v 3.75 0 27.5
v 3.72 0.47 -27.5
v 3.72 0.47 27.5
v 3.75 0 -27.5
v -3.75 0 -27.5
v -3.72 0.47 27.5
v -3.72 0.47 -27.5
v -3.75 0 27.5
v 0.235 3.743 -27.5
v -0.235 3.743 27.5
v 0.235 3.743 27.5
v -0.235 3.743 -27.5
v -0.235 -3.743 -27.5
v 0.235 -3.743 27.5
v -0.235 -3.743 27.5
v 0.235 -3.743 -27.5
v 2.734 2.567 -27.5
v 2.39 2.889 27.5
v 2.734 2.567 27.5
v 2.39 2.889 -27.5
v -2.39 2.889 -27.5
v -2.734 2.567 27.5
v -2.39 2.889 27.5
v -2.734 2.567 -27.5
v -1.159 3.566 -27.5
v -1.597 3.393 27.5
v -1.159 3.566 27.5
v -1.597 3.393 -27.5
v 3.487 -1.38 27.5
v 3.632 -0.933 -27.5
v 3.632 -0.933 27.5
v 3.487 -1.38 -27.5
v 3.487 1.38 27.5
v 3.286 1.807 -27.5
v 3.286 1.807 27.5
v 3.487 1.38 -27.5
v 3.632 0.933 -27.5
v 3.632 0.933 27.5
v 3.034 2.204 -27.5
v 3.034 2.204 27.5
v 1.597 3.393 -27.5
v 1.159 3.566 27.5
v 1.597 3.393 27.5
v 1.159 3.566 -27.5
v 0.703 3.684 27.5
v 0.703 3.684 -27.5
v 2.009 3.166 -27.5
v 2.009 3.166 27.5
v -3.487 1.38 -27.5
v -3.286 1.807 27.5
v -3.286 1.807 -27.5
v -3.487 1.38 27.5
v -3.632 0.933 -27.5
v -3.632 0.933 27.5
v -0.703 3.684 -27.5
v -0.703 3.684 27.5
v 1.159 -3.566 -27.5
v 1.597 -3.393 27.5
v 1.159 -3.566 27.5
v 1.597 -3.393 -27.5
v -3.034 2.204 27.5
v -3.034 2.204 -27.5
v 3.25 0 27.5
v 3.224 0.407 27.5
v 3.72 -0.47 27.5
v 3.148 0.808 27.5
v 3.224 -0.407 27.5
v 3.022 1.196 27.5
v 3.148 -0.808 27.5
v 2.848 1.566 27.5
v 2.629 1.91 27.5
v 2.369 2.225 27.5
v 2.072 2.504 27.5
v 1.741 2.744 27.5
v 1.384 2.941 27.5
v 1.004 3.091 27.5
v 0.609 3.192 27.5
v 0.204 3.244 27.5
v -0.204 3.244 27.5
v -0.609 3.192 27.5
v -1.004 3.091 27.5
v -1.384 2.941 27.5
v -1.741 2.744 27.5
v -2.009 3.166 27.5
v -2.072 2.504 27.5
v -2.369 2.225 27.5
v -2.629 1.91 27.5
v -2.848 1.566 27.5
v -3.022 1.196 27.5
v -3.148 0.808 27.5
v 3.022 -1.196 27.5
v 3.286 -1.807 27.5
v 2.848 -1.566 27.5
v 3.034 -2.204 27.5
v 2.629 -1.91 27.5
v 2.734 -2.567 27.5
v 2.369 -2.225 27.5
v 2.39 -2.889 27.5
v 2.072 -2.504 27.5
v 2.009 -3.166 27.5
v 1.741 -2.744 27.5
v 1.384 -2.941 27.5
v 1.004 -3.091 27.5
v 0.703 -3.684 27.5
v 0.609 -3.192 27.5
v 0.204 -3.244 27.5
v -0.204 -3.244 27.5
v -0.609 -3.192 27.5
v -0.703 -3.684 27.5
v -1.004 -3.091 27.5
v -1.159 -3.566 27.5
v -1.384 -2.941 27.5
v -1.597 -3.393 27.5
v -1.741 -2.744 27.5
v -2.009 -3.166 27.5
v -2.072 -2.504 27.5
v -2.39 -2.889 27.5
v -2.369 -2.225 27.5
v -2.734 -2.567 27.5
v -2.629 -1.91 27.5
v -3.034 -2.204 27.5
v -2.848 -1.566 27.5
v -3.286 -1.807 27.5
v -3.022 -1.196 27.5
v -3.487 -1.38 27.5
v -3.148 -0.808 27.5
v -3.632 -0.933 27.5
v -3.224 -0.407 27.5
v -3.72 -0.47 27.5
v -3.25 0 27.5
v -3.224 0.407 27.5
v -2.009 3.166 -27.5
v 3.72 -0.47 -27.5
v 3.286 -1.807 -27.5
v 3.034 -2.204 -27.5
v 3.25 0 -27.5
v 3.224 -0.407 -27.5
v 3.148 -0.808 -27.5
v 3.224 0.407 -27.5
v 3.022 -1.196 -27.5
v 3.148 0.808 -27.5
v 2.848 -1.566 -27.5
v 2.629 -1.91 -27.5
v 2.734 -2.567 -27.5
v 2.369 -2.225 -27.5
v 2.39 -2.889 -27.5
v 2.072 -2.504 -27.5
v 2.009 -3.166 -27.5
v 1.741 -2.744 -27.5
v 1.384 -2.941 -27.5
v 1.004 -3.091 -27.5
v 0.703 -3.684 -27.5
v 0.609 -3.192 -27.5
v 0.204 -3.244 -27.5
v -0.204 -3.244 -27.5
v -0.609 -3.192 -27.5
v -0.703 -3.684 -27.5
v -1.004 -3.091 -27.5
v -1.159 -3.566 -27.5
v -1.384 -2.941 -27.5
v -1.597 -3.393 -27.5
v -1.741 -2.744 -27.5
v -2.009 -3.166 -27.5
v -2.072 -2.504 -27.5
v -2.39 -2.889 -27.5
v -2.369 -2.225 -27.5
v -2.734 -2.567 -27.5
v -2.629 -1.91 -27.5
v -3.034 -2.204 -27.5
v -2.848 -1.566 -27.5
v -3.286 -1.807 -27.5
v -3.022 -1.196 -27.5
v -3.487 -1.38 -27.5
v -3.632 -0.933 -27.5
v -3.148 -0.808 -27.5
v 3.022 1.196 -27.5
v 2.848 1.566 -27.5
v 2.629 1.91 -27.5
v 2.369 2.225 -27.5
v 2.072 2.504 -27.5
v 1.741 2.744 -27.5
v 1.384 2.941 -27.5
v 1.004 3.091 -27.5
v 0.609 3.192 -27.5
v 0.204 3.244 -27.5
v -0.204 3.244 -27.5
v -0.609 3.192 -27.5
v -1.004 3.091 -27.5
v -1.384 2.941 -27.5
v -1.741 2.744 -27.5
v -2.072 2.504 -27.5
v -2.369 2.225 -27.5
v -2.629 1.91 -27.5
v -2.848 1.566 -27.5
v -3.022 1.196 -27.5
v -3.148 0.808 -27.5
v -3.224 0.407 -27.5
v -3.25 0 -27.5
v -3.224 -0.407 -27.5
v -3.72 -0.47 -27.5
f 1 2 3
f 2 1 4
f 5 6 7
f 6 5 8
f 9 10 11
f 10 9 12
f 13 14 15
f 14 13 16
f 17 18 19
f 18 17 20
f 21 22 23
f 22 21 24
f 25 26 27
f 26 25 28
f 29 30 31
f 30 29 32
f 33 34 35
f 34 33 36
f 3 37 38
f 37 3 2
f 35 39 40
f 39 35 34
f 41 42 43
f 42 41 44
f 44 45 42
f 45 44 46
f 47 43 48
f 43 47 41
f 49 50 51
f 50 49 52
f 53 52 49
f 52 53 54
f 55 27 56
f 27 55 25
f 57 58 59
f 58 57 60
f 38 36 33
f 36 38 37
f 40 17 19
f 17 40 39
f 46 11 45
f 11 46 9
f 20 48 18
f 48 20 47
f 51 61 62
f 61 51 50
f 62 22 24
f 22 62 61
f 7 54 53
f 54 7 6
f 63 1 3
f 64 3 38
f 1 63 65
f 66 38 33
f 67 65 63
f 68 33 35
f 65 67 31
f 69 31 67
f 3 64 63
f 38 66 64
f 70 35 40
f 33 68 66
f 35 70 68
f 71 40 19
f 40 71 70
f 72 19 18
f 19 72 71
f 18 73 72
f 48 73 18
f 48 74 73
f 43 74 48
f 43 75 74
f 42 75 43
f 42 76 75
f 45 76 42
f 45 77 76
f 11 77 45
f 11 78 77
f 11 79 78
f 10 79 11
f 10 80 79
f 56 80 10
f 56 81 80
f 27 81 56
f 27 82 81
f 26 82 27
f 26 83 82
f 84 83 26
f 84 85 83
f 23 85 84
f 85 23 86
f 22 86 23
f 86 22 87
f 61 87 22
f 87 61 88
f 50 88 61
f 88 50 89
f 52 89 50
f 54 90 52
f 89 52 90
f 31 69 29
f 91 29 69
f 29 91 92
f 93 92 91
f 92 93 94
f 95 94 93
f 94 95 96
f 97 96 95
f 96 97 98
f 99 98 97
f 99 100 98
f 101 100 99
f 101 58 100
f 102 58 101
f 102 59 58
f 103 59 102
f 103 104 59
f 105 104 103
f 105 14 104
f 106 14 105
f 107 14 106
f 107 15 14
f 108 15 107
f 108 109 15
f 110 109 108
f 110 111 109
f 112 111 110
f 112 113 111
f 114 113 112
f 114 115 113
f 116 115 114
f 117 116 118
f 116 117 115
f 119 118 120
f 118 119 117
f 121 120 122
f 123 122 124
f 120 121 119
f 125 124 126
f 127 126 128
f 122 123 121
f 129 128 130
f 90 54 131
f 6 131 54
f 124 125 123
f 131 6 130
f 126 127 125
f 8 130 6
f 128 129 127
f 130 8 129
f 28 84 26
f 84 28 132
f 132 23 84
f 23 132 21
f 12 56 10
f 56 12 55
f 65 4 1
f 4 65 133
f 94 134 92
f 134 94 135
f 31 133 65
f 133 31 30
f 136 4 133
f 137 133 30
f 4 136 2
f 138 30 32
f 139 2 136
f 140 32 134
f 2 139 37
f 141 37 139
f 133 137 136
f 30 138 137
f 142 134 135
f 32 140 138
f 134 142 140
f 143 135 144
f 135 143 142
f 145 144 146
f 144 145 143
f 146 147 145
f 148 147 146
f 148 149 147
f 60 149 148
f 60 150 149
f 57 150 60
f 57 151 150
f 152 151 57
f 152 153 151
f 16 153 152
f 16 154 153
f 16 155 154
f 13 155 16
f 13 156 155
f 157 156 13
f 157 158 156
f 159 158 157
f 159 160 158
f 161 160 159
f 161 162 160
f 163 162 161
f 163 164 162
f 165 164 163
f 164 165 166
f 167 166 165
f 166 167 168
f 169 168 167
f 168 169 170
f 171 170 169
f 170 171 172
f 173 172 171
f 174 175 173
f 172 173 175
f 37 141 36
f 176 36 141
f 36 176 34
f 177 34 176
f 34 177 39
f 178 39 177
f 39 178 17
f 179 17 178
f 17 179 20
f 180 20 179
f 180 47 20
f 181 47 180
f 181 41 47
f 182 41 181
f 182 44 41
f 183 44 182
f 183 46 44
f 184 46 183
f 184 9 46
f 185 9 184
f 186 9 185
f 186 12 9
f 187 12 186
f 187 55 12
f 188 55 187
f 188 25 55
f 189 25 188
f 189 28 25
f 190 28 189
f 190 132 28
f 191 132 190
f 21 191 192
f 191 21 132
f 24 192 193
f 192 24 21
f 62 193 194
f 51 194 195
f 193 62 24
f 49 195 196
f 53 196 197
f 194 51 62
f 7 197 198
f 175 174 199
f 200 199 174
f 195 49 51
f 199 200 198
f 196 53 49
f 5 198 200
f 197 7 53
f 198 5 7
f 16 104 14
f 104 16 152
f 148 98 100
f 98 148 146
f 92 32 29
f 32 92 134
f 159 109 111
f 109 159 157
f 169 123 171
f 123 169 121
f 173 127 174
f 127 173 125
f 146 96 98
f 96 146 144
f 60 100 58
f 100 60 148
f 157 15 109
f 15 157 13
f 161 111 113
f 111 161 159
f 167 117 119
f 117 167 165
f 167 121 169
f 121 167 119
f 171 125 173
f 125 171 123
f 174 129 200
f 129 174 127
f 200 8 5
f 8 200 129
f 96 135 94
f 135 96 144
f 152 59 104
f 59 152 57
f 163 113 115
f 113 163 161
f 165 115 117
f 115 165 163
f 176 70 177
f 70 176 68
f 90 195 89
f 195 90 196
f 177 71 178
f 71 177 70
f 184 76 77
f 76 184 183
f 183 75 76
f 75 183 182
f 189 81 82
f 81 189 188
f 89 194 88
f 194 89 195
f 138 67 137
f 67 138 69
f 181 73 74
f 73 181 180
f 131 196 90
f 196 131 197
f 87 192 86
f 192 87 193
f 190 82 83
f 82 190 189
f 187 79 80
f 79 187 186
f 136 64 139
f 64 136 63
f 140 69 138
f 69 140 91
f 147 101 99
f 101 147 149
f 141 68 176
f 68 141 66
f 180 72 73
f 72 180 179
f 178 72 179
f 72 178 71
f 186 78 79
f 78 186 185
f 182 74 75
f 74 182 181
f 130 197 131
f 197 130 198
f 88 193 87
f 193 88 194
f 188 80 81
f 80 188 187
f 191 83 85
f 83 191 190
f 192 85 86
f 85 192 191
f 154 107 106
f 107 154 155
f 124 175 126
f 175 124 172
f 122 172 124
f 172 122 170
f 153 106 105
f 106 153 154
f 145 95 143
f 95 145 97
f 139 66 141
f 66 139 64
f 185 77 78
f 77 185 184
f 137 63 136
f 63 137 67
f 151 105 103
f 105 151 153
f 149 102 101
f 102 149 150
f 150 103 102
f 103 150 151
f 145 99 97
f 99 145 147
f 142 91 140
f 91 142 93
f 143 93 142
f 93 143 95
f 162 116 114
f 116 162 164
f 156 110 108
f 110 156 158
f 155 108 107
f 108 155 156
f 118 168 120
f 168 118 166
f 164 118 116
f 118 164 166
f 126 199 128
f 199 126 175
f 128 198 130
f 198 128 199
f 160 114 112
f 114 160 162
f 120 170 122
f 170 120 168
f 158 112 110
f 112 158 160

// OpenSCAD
$fn = 50;


difference() {
	union() {
		translate(v = [0, 0, -27.5000000000]) {
			cylinder(h = 55, r = 3.7500000000);
		}
	}
	union() {
		translate(v = [0, 0, -100.0000000000]) {
			cylinder(h = 200, r = 3.2500000000);
		}
	}
}
